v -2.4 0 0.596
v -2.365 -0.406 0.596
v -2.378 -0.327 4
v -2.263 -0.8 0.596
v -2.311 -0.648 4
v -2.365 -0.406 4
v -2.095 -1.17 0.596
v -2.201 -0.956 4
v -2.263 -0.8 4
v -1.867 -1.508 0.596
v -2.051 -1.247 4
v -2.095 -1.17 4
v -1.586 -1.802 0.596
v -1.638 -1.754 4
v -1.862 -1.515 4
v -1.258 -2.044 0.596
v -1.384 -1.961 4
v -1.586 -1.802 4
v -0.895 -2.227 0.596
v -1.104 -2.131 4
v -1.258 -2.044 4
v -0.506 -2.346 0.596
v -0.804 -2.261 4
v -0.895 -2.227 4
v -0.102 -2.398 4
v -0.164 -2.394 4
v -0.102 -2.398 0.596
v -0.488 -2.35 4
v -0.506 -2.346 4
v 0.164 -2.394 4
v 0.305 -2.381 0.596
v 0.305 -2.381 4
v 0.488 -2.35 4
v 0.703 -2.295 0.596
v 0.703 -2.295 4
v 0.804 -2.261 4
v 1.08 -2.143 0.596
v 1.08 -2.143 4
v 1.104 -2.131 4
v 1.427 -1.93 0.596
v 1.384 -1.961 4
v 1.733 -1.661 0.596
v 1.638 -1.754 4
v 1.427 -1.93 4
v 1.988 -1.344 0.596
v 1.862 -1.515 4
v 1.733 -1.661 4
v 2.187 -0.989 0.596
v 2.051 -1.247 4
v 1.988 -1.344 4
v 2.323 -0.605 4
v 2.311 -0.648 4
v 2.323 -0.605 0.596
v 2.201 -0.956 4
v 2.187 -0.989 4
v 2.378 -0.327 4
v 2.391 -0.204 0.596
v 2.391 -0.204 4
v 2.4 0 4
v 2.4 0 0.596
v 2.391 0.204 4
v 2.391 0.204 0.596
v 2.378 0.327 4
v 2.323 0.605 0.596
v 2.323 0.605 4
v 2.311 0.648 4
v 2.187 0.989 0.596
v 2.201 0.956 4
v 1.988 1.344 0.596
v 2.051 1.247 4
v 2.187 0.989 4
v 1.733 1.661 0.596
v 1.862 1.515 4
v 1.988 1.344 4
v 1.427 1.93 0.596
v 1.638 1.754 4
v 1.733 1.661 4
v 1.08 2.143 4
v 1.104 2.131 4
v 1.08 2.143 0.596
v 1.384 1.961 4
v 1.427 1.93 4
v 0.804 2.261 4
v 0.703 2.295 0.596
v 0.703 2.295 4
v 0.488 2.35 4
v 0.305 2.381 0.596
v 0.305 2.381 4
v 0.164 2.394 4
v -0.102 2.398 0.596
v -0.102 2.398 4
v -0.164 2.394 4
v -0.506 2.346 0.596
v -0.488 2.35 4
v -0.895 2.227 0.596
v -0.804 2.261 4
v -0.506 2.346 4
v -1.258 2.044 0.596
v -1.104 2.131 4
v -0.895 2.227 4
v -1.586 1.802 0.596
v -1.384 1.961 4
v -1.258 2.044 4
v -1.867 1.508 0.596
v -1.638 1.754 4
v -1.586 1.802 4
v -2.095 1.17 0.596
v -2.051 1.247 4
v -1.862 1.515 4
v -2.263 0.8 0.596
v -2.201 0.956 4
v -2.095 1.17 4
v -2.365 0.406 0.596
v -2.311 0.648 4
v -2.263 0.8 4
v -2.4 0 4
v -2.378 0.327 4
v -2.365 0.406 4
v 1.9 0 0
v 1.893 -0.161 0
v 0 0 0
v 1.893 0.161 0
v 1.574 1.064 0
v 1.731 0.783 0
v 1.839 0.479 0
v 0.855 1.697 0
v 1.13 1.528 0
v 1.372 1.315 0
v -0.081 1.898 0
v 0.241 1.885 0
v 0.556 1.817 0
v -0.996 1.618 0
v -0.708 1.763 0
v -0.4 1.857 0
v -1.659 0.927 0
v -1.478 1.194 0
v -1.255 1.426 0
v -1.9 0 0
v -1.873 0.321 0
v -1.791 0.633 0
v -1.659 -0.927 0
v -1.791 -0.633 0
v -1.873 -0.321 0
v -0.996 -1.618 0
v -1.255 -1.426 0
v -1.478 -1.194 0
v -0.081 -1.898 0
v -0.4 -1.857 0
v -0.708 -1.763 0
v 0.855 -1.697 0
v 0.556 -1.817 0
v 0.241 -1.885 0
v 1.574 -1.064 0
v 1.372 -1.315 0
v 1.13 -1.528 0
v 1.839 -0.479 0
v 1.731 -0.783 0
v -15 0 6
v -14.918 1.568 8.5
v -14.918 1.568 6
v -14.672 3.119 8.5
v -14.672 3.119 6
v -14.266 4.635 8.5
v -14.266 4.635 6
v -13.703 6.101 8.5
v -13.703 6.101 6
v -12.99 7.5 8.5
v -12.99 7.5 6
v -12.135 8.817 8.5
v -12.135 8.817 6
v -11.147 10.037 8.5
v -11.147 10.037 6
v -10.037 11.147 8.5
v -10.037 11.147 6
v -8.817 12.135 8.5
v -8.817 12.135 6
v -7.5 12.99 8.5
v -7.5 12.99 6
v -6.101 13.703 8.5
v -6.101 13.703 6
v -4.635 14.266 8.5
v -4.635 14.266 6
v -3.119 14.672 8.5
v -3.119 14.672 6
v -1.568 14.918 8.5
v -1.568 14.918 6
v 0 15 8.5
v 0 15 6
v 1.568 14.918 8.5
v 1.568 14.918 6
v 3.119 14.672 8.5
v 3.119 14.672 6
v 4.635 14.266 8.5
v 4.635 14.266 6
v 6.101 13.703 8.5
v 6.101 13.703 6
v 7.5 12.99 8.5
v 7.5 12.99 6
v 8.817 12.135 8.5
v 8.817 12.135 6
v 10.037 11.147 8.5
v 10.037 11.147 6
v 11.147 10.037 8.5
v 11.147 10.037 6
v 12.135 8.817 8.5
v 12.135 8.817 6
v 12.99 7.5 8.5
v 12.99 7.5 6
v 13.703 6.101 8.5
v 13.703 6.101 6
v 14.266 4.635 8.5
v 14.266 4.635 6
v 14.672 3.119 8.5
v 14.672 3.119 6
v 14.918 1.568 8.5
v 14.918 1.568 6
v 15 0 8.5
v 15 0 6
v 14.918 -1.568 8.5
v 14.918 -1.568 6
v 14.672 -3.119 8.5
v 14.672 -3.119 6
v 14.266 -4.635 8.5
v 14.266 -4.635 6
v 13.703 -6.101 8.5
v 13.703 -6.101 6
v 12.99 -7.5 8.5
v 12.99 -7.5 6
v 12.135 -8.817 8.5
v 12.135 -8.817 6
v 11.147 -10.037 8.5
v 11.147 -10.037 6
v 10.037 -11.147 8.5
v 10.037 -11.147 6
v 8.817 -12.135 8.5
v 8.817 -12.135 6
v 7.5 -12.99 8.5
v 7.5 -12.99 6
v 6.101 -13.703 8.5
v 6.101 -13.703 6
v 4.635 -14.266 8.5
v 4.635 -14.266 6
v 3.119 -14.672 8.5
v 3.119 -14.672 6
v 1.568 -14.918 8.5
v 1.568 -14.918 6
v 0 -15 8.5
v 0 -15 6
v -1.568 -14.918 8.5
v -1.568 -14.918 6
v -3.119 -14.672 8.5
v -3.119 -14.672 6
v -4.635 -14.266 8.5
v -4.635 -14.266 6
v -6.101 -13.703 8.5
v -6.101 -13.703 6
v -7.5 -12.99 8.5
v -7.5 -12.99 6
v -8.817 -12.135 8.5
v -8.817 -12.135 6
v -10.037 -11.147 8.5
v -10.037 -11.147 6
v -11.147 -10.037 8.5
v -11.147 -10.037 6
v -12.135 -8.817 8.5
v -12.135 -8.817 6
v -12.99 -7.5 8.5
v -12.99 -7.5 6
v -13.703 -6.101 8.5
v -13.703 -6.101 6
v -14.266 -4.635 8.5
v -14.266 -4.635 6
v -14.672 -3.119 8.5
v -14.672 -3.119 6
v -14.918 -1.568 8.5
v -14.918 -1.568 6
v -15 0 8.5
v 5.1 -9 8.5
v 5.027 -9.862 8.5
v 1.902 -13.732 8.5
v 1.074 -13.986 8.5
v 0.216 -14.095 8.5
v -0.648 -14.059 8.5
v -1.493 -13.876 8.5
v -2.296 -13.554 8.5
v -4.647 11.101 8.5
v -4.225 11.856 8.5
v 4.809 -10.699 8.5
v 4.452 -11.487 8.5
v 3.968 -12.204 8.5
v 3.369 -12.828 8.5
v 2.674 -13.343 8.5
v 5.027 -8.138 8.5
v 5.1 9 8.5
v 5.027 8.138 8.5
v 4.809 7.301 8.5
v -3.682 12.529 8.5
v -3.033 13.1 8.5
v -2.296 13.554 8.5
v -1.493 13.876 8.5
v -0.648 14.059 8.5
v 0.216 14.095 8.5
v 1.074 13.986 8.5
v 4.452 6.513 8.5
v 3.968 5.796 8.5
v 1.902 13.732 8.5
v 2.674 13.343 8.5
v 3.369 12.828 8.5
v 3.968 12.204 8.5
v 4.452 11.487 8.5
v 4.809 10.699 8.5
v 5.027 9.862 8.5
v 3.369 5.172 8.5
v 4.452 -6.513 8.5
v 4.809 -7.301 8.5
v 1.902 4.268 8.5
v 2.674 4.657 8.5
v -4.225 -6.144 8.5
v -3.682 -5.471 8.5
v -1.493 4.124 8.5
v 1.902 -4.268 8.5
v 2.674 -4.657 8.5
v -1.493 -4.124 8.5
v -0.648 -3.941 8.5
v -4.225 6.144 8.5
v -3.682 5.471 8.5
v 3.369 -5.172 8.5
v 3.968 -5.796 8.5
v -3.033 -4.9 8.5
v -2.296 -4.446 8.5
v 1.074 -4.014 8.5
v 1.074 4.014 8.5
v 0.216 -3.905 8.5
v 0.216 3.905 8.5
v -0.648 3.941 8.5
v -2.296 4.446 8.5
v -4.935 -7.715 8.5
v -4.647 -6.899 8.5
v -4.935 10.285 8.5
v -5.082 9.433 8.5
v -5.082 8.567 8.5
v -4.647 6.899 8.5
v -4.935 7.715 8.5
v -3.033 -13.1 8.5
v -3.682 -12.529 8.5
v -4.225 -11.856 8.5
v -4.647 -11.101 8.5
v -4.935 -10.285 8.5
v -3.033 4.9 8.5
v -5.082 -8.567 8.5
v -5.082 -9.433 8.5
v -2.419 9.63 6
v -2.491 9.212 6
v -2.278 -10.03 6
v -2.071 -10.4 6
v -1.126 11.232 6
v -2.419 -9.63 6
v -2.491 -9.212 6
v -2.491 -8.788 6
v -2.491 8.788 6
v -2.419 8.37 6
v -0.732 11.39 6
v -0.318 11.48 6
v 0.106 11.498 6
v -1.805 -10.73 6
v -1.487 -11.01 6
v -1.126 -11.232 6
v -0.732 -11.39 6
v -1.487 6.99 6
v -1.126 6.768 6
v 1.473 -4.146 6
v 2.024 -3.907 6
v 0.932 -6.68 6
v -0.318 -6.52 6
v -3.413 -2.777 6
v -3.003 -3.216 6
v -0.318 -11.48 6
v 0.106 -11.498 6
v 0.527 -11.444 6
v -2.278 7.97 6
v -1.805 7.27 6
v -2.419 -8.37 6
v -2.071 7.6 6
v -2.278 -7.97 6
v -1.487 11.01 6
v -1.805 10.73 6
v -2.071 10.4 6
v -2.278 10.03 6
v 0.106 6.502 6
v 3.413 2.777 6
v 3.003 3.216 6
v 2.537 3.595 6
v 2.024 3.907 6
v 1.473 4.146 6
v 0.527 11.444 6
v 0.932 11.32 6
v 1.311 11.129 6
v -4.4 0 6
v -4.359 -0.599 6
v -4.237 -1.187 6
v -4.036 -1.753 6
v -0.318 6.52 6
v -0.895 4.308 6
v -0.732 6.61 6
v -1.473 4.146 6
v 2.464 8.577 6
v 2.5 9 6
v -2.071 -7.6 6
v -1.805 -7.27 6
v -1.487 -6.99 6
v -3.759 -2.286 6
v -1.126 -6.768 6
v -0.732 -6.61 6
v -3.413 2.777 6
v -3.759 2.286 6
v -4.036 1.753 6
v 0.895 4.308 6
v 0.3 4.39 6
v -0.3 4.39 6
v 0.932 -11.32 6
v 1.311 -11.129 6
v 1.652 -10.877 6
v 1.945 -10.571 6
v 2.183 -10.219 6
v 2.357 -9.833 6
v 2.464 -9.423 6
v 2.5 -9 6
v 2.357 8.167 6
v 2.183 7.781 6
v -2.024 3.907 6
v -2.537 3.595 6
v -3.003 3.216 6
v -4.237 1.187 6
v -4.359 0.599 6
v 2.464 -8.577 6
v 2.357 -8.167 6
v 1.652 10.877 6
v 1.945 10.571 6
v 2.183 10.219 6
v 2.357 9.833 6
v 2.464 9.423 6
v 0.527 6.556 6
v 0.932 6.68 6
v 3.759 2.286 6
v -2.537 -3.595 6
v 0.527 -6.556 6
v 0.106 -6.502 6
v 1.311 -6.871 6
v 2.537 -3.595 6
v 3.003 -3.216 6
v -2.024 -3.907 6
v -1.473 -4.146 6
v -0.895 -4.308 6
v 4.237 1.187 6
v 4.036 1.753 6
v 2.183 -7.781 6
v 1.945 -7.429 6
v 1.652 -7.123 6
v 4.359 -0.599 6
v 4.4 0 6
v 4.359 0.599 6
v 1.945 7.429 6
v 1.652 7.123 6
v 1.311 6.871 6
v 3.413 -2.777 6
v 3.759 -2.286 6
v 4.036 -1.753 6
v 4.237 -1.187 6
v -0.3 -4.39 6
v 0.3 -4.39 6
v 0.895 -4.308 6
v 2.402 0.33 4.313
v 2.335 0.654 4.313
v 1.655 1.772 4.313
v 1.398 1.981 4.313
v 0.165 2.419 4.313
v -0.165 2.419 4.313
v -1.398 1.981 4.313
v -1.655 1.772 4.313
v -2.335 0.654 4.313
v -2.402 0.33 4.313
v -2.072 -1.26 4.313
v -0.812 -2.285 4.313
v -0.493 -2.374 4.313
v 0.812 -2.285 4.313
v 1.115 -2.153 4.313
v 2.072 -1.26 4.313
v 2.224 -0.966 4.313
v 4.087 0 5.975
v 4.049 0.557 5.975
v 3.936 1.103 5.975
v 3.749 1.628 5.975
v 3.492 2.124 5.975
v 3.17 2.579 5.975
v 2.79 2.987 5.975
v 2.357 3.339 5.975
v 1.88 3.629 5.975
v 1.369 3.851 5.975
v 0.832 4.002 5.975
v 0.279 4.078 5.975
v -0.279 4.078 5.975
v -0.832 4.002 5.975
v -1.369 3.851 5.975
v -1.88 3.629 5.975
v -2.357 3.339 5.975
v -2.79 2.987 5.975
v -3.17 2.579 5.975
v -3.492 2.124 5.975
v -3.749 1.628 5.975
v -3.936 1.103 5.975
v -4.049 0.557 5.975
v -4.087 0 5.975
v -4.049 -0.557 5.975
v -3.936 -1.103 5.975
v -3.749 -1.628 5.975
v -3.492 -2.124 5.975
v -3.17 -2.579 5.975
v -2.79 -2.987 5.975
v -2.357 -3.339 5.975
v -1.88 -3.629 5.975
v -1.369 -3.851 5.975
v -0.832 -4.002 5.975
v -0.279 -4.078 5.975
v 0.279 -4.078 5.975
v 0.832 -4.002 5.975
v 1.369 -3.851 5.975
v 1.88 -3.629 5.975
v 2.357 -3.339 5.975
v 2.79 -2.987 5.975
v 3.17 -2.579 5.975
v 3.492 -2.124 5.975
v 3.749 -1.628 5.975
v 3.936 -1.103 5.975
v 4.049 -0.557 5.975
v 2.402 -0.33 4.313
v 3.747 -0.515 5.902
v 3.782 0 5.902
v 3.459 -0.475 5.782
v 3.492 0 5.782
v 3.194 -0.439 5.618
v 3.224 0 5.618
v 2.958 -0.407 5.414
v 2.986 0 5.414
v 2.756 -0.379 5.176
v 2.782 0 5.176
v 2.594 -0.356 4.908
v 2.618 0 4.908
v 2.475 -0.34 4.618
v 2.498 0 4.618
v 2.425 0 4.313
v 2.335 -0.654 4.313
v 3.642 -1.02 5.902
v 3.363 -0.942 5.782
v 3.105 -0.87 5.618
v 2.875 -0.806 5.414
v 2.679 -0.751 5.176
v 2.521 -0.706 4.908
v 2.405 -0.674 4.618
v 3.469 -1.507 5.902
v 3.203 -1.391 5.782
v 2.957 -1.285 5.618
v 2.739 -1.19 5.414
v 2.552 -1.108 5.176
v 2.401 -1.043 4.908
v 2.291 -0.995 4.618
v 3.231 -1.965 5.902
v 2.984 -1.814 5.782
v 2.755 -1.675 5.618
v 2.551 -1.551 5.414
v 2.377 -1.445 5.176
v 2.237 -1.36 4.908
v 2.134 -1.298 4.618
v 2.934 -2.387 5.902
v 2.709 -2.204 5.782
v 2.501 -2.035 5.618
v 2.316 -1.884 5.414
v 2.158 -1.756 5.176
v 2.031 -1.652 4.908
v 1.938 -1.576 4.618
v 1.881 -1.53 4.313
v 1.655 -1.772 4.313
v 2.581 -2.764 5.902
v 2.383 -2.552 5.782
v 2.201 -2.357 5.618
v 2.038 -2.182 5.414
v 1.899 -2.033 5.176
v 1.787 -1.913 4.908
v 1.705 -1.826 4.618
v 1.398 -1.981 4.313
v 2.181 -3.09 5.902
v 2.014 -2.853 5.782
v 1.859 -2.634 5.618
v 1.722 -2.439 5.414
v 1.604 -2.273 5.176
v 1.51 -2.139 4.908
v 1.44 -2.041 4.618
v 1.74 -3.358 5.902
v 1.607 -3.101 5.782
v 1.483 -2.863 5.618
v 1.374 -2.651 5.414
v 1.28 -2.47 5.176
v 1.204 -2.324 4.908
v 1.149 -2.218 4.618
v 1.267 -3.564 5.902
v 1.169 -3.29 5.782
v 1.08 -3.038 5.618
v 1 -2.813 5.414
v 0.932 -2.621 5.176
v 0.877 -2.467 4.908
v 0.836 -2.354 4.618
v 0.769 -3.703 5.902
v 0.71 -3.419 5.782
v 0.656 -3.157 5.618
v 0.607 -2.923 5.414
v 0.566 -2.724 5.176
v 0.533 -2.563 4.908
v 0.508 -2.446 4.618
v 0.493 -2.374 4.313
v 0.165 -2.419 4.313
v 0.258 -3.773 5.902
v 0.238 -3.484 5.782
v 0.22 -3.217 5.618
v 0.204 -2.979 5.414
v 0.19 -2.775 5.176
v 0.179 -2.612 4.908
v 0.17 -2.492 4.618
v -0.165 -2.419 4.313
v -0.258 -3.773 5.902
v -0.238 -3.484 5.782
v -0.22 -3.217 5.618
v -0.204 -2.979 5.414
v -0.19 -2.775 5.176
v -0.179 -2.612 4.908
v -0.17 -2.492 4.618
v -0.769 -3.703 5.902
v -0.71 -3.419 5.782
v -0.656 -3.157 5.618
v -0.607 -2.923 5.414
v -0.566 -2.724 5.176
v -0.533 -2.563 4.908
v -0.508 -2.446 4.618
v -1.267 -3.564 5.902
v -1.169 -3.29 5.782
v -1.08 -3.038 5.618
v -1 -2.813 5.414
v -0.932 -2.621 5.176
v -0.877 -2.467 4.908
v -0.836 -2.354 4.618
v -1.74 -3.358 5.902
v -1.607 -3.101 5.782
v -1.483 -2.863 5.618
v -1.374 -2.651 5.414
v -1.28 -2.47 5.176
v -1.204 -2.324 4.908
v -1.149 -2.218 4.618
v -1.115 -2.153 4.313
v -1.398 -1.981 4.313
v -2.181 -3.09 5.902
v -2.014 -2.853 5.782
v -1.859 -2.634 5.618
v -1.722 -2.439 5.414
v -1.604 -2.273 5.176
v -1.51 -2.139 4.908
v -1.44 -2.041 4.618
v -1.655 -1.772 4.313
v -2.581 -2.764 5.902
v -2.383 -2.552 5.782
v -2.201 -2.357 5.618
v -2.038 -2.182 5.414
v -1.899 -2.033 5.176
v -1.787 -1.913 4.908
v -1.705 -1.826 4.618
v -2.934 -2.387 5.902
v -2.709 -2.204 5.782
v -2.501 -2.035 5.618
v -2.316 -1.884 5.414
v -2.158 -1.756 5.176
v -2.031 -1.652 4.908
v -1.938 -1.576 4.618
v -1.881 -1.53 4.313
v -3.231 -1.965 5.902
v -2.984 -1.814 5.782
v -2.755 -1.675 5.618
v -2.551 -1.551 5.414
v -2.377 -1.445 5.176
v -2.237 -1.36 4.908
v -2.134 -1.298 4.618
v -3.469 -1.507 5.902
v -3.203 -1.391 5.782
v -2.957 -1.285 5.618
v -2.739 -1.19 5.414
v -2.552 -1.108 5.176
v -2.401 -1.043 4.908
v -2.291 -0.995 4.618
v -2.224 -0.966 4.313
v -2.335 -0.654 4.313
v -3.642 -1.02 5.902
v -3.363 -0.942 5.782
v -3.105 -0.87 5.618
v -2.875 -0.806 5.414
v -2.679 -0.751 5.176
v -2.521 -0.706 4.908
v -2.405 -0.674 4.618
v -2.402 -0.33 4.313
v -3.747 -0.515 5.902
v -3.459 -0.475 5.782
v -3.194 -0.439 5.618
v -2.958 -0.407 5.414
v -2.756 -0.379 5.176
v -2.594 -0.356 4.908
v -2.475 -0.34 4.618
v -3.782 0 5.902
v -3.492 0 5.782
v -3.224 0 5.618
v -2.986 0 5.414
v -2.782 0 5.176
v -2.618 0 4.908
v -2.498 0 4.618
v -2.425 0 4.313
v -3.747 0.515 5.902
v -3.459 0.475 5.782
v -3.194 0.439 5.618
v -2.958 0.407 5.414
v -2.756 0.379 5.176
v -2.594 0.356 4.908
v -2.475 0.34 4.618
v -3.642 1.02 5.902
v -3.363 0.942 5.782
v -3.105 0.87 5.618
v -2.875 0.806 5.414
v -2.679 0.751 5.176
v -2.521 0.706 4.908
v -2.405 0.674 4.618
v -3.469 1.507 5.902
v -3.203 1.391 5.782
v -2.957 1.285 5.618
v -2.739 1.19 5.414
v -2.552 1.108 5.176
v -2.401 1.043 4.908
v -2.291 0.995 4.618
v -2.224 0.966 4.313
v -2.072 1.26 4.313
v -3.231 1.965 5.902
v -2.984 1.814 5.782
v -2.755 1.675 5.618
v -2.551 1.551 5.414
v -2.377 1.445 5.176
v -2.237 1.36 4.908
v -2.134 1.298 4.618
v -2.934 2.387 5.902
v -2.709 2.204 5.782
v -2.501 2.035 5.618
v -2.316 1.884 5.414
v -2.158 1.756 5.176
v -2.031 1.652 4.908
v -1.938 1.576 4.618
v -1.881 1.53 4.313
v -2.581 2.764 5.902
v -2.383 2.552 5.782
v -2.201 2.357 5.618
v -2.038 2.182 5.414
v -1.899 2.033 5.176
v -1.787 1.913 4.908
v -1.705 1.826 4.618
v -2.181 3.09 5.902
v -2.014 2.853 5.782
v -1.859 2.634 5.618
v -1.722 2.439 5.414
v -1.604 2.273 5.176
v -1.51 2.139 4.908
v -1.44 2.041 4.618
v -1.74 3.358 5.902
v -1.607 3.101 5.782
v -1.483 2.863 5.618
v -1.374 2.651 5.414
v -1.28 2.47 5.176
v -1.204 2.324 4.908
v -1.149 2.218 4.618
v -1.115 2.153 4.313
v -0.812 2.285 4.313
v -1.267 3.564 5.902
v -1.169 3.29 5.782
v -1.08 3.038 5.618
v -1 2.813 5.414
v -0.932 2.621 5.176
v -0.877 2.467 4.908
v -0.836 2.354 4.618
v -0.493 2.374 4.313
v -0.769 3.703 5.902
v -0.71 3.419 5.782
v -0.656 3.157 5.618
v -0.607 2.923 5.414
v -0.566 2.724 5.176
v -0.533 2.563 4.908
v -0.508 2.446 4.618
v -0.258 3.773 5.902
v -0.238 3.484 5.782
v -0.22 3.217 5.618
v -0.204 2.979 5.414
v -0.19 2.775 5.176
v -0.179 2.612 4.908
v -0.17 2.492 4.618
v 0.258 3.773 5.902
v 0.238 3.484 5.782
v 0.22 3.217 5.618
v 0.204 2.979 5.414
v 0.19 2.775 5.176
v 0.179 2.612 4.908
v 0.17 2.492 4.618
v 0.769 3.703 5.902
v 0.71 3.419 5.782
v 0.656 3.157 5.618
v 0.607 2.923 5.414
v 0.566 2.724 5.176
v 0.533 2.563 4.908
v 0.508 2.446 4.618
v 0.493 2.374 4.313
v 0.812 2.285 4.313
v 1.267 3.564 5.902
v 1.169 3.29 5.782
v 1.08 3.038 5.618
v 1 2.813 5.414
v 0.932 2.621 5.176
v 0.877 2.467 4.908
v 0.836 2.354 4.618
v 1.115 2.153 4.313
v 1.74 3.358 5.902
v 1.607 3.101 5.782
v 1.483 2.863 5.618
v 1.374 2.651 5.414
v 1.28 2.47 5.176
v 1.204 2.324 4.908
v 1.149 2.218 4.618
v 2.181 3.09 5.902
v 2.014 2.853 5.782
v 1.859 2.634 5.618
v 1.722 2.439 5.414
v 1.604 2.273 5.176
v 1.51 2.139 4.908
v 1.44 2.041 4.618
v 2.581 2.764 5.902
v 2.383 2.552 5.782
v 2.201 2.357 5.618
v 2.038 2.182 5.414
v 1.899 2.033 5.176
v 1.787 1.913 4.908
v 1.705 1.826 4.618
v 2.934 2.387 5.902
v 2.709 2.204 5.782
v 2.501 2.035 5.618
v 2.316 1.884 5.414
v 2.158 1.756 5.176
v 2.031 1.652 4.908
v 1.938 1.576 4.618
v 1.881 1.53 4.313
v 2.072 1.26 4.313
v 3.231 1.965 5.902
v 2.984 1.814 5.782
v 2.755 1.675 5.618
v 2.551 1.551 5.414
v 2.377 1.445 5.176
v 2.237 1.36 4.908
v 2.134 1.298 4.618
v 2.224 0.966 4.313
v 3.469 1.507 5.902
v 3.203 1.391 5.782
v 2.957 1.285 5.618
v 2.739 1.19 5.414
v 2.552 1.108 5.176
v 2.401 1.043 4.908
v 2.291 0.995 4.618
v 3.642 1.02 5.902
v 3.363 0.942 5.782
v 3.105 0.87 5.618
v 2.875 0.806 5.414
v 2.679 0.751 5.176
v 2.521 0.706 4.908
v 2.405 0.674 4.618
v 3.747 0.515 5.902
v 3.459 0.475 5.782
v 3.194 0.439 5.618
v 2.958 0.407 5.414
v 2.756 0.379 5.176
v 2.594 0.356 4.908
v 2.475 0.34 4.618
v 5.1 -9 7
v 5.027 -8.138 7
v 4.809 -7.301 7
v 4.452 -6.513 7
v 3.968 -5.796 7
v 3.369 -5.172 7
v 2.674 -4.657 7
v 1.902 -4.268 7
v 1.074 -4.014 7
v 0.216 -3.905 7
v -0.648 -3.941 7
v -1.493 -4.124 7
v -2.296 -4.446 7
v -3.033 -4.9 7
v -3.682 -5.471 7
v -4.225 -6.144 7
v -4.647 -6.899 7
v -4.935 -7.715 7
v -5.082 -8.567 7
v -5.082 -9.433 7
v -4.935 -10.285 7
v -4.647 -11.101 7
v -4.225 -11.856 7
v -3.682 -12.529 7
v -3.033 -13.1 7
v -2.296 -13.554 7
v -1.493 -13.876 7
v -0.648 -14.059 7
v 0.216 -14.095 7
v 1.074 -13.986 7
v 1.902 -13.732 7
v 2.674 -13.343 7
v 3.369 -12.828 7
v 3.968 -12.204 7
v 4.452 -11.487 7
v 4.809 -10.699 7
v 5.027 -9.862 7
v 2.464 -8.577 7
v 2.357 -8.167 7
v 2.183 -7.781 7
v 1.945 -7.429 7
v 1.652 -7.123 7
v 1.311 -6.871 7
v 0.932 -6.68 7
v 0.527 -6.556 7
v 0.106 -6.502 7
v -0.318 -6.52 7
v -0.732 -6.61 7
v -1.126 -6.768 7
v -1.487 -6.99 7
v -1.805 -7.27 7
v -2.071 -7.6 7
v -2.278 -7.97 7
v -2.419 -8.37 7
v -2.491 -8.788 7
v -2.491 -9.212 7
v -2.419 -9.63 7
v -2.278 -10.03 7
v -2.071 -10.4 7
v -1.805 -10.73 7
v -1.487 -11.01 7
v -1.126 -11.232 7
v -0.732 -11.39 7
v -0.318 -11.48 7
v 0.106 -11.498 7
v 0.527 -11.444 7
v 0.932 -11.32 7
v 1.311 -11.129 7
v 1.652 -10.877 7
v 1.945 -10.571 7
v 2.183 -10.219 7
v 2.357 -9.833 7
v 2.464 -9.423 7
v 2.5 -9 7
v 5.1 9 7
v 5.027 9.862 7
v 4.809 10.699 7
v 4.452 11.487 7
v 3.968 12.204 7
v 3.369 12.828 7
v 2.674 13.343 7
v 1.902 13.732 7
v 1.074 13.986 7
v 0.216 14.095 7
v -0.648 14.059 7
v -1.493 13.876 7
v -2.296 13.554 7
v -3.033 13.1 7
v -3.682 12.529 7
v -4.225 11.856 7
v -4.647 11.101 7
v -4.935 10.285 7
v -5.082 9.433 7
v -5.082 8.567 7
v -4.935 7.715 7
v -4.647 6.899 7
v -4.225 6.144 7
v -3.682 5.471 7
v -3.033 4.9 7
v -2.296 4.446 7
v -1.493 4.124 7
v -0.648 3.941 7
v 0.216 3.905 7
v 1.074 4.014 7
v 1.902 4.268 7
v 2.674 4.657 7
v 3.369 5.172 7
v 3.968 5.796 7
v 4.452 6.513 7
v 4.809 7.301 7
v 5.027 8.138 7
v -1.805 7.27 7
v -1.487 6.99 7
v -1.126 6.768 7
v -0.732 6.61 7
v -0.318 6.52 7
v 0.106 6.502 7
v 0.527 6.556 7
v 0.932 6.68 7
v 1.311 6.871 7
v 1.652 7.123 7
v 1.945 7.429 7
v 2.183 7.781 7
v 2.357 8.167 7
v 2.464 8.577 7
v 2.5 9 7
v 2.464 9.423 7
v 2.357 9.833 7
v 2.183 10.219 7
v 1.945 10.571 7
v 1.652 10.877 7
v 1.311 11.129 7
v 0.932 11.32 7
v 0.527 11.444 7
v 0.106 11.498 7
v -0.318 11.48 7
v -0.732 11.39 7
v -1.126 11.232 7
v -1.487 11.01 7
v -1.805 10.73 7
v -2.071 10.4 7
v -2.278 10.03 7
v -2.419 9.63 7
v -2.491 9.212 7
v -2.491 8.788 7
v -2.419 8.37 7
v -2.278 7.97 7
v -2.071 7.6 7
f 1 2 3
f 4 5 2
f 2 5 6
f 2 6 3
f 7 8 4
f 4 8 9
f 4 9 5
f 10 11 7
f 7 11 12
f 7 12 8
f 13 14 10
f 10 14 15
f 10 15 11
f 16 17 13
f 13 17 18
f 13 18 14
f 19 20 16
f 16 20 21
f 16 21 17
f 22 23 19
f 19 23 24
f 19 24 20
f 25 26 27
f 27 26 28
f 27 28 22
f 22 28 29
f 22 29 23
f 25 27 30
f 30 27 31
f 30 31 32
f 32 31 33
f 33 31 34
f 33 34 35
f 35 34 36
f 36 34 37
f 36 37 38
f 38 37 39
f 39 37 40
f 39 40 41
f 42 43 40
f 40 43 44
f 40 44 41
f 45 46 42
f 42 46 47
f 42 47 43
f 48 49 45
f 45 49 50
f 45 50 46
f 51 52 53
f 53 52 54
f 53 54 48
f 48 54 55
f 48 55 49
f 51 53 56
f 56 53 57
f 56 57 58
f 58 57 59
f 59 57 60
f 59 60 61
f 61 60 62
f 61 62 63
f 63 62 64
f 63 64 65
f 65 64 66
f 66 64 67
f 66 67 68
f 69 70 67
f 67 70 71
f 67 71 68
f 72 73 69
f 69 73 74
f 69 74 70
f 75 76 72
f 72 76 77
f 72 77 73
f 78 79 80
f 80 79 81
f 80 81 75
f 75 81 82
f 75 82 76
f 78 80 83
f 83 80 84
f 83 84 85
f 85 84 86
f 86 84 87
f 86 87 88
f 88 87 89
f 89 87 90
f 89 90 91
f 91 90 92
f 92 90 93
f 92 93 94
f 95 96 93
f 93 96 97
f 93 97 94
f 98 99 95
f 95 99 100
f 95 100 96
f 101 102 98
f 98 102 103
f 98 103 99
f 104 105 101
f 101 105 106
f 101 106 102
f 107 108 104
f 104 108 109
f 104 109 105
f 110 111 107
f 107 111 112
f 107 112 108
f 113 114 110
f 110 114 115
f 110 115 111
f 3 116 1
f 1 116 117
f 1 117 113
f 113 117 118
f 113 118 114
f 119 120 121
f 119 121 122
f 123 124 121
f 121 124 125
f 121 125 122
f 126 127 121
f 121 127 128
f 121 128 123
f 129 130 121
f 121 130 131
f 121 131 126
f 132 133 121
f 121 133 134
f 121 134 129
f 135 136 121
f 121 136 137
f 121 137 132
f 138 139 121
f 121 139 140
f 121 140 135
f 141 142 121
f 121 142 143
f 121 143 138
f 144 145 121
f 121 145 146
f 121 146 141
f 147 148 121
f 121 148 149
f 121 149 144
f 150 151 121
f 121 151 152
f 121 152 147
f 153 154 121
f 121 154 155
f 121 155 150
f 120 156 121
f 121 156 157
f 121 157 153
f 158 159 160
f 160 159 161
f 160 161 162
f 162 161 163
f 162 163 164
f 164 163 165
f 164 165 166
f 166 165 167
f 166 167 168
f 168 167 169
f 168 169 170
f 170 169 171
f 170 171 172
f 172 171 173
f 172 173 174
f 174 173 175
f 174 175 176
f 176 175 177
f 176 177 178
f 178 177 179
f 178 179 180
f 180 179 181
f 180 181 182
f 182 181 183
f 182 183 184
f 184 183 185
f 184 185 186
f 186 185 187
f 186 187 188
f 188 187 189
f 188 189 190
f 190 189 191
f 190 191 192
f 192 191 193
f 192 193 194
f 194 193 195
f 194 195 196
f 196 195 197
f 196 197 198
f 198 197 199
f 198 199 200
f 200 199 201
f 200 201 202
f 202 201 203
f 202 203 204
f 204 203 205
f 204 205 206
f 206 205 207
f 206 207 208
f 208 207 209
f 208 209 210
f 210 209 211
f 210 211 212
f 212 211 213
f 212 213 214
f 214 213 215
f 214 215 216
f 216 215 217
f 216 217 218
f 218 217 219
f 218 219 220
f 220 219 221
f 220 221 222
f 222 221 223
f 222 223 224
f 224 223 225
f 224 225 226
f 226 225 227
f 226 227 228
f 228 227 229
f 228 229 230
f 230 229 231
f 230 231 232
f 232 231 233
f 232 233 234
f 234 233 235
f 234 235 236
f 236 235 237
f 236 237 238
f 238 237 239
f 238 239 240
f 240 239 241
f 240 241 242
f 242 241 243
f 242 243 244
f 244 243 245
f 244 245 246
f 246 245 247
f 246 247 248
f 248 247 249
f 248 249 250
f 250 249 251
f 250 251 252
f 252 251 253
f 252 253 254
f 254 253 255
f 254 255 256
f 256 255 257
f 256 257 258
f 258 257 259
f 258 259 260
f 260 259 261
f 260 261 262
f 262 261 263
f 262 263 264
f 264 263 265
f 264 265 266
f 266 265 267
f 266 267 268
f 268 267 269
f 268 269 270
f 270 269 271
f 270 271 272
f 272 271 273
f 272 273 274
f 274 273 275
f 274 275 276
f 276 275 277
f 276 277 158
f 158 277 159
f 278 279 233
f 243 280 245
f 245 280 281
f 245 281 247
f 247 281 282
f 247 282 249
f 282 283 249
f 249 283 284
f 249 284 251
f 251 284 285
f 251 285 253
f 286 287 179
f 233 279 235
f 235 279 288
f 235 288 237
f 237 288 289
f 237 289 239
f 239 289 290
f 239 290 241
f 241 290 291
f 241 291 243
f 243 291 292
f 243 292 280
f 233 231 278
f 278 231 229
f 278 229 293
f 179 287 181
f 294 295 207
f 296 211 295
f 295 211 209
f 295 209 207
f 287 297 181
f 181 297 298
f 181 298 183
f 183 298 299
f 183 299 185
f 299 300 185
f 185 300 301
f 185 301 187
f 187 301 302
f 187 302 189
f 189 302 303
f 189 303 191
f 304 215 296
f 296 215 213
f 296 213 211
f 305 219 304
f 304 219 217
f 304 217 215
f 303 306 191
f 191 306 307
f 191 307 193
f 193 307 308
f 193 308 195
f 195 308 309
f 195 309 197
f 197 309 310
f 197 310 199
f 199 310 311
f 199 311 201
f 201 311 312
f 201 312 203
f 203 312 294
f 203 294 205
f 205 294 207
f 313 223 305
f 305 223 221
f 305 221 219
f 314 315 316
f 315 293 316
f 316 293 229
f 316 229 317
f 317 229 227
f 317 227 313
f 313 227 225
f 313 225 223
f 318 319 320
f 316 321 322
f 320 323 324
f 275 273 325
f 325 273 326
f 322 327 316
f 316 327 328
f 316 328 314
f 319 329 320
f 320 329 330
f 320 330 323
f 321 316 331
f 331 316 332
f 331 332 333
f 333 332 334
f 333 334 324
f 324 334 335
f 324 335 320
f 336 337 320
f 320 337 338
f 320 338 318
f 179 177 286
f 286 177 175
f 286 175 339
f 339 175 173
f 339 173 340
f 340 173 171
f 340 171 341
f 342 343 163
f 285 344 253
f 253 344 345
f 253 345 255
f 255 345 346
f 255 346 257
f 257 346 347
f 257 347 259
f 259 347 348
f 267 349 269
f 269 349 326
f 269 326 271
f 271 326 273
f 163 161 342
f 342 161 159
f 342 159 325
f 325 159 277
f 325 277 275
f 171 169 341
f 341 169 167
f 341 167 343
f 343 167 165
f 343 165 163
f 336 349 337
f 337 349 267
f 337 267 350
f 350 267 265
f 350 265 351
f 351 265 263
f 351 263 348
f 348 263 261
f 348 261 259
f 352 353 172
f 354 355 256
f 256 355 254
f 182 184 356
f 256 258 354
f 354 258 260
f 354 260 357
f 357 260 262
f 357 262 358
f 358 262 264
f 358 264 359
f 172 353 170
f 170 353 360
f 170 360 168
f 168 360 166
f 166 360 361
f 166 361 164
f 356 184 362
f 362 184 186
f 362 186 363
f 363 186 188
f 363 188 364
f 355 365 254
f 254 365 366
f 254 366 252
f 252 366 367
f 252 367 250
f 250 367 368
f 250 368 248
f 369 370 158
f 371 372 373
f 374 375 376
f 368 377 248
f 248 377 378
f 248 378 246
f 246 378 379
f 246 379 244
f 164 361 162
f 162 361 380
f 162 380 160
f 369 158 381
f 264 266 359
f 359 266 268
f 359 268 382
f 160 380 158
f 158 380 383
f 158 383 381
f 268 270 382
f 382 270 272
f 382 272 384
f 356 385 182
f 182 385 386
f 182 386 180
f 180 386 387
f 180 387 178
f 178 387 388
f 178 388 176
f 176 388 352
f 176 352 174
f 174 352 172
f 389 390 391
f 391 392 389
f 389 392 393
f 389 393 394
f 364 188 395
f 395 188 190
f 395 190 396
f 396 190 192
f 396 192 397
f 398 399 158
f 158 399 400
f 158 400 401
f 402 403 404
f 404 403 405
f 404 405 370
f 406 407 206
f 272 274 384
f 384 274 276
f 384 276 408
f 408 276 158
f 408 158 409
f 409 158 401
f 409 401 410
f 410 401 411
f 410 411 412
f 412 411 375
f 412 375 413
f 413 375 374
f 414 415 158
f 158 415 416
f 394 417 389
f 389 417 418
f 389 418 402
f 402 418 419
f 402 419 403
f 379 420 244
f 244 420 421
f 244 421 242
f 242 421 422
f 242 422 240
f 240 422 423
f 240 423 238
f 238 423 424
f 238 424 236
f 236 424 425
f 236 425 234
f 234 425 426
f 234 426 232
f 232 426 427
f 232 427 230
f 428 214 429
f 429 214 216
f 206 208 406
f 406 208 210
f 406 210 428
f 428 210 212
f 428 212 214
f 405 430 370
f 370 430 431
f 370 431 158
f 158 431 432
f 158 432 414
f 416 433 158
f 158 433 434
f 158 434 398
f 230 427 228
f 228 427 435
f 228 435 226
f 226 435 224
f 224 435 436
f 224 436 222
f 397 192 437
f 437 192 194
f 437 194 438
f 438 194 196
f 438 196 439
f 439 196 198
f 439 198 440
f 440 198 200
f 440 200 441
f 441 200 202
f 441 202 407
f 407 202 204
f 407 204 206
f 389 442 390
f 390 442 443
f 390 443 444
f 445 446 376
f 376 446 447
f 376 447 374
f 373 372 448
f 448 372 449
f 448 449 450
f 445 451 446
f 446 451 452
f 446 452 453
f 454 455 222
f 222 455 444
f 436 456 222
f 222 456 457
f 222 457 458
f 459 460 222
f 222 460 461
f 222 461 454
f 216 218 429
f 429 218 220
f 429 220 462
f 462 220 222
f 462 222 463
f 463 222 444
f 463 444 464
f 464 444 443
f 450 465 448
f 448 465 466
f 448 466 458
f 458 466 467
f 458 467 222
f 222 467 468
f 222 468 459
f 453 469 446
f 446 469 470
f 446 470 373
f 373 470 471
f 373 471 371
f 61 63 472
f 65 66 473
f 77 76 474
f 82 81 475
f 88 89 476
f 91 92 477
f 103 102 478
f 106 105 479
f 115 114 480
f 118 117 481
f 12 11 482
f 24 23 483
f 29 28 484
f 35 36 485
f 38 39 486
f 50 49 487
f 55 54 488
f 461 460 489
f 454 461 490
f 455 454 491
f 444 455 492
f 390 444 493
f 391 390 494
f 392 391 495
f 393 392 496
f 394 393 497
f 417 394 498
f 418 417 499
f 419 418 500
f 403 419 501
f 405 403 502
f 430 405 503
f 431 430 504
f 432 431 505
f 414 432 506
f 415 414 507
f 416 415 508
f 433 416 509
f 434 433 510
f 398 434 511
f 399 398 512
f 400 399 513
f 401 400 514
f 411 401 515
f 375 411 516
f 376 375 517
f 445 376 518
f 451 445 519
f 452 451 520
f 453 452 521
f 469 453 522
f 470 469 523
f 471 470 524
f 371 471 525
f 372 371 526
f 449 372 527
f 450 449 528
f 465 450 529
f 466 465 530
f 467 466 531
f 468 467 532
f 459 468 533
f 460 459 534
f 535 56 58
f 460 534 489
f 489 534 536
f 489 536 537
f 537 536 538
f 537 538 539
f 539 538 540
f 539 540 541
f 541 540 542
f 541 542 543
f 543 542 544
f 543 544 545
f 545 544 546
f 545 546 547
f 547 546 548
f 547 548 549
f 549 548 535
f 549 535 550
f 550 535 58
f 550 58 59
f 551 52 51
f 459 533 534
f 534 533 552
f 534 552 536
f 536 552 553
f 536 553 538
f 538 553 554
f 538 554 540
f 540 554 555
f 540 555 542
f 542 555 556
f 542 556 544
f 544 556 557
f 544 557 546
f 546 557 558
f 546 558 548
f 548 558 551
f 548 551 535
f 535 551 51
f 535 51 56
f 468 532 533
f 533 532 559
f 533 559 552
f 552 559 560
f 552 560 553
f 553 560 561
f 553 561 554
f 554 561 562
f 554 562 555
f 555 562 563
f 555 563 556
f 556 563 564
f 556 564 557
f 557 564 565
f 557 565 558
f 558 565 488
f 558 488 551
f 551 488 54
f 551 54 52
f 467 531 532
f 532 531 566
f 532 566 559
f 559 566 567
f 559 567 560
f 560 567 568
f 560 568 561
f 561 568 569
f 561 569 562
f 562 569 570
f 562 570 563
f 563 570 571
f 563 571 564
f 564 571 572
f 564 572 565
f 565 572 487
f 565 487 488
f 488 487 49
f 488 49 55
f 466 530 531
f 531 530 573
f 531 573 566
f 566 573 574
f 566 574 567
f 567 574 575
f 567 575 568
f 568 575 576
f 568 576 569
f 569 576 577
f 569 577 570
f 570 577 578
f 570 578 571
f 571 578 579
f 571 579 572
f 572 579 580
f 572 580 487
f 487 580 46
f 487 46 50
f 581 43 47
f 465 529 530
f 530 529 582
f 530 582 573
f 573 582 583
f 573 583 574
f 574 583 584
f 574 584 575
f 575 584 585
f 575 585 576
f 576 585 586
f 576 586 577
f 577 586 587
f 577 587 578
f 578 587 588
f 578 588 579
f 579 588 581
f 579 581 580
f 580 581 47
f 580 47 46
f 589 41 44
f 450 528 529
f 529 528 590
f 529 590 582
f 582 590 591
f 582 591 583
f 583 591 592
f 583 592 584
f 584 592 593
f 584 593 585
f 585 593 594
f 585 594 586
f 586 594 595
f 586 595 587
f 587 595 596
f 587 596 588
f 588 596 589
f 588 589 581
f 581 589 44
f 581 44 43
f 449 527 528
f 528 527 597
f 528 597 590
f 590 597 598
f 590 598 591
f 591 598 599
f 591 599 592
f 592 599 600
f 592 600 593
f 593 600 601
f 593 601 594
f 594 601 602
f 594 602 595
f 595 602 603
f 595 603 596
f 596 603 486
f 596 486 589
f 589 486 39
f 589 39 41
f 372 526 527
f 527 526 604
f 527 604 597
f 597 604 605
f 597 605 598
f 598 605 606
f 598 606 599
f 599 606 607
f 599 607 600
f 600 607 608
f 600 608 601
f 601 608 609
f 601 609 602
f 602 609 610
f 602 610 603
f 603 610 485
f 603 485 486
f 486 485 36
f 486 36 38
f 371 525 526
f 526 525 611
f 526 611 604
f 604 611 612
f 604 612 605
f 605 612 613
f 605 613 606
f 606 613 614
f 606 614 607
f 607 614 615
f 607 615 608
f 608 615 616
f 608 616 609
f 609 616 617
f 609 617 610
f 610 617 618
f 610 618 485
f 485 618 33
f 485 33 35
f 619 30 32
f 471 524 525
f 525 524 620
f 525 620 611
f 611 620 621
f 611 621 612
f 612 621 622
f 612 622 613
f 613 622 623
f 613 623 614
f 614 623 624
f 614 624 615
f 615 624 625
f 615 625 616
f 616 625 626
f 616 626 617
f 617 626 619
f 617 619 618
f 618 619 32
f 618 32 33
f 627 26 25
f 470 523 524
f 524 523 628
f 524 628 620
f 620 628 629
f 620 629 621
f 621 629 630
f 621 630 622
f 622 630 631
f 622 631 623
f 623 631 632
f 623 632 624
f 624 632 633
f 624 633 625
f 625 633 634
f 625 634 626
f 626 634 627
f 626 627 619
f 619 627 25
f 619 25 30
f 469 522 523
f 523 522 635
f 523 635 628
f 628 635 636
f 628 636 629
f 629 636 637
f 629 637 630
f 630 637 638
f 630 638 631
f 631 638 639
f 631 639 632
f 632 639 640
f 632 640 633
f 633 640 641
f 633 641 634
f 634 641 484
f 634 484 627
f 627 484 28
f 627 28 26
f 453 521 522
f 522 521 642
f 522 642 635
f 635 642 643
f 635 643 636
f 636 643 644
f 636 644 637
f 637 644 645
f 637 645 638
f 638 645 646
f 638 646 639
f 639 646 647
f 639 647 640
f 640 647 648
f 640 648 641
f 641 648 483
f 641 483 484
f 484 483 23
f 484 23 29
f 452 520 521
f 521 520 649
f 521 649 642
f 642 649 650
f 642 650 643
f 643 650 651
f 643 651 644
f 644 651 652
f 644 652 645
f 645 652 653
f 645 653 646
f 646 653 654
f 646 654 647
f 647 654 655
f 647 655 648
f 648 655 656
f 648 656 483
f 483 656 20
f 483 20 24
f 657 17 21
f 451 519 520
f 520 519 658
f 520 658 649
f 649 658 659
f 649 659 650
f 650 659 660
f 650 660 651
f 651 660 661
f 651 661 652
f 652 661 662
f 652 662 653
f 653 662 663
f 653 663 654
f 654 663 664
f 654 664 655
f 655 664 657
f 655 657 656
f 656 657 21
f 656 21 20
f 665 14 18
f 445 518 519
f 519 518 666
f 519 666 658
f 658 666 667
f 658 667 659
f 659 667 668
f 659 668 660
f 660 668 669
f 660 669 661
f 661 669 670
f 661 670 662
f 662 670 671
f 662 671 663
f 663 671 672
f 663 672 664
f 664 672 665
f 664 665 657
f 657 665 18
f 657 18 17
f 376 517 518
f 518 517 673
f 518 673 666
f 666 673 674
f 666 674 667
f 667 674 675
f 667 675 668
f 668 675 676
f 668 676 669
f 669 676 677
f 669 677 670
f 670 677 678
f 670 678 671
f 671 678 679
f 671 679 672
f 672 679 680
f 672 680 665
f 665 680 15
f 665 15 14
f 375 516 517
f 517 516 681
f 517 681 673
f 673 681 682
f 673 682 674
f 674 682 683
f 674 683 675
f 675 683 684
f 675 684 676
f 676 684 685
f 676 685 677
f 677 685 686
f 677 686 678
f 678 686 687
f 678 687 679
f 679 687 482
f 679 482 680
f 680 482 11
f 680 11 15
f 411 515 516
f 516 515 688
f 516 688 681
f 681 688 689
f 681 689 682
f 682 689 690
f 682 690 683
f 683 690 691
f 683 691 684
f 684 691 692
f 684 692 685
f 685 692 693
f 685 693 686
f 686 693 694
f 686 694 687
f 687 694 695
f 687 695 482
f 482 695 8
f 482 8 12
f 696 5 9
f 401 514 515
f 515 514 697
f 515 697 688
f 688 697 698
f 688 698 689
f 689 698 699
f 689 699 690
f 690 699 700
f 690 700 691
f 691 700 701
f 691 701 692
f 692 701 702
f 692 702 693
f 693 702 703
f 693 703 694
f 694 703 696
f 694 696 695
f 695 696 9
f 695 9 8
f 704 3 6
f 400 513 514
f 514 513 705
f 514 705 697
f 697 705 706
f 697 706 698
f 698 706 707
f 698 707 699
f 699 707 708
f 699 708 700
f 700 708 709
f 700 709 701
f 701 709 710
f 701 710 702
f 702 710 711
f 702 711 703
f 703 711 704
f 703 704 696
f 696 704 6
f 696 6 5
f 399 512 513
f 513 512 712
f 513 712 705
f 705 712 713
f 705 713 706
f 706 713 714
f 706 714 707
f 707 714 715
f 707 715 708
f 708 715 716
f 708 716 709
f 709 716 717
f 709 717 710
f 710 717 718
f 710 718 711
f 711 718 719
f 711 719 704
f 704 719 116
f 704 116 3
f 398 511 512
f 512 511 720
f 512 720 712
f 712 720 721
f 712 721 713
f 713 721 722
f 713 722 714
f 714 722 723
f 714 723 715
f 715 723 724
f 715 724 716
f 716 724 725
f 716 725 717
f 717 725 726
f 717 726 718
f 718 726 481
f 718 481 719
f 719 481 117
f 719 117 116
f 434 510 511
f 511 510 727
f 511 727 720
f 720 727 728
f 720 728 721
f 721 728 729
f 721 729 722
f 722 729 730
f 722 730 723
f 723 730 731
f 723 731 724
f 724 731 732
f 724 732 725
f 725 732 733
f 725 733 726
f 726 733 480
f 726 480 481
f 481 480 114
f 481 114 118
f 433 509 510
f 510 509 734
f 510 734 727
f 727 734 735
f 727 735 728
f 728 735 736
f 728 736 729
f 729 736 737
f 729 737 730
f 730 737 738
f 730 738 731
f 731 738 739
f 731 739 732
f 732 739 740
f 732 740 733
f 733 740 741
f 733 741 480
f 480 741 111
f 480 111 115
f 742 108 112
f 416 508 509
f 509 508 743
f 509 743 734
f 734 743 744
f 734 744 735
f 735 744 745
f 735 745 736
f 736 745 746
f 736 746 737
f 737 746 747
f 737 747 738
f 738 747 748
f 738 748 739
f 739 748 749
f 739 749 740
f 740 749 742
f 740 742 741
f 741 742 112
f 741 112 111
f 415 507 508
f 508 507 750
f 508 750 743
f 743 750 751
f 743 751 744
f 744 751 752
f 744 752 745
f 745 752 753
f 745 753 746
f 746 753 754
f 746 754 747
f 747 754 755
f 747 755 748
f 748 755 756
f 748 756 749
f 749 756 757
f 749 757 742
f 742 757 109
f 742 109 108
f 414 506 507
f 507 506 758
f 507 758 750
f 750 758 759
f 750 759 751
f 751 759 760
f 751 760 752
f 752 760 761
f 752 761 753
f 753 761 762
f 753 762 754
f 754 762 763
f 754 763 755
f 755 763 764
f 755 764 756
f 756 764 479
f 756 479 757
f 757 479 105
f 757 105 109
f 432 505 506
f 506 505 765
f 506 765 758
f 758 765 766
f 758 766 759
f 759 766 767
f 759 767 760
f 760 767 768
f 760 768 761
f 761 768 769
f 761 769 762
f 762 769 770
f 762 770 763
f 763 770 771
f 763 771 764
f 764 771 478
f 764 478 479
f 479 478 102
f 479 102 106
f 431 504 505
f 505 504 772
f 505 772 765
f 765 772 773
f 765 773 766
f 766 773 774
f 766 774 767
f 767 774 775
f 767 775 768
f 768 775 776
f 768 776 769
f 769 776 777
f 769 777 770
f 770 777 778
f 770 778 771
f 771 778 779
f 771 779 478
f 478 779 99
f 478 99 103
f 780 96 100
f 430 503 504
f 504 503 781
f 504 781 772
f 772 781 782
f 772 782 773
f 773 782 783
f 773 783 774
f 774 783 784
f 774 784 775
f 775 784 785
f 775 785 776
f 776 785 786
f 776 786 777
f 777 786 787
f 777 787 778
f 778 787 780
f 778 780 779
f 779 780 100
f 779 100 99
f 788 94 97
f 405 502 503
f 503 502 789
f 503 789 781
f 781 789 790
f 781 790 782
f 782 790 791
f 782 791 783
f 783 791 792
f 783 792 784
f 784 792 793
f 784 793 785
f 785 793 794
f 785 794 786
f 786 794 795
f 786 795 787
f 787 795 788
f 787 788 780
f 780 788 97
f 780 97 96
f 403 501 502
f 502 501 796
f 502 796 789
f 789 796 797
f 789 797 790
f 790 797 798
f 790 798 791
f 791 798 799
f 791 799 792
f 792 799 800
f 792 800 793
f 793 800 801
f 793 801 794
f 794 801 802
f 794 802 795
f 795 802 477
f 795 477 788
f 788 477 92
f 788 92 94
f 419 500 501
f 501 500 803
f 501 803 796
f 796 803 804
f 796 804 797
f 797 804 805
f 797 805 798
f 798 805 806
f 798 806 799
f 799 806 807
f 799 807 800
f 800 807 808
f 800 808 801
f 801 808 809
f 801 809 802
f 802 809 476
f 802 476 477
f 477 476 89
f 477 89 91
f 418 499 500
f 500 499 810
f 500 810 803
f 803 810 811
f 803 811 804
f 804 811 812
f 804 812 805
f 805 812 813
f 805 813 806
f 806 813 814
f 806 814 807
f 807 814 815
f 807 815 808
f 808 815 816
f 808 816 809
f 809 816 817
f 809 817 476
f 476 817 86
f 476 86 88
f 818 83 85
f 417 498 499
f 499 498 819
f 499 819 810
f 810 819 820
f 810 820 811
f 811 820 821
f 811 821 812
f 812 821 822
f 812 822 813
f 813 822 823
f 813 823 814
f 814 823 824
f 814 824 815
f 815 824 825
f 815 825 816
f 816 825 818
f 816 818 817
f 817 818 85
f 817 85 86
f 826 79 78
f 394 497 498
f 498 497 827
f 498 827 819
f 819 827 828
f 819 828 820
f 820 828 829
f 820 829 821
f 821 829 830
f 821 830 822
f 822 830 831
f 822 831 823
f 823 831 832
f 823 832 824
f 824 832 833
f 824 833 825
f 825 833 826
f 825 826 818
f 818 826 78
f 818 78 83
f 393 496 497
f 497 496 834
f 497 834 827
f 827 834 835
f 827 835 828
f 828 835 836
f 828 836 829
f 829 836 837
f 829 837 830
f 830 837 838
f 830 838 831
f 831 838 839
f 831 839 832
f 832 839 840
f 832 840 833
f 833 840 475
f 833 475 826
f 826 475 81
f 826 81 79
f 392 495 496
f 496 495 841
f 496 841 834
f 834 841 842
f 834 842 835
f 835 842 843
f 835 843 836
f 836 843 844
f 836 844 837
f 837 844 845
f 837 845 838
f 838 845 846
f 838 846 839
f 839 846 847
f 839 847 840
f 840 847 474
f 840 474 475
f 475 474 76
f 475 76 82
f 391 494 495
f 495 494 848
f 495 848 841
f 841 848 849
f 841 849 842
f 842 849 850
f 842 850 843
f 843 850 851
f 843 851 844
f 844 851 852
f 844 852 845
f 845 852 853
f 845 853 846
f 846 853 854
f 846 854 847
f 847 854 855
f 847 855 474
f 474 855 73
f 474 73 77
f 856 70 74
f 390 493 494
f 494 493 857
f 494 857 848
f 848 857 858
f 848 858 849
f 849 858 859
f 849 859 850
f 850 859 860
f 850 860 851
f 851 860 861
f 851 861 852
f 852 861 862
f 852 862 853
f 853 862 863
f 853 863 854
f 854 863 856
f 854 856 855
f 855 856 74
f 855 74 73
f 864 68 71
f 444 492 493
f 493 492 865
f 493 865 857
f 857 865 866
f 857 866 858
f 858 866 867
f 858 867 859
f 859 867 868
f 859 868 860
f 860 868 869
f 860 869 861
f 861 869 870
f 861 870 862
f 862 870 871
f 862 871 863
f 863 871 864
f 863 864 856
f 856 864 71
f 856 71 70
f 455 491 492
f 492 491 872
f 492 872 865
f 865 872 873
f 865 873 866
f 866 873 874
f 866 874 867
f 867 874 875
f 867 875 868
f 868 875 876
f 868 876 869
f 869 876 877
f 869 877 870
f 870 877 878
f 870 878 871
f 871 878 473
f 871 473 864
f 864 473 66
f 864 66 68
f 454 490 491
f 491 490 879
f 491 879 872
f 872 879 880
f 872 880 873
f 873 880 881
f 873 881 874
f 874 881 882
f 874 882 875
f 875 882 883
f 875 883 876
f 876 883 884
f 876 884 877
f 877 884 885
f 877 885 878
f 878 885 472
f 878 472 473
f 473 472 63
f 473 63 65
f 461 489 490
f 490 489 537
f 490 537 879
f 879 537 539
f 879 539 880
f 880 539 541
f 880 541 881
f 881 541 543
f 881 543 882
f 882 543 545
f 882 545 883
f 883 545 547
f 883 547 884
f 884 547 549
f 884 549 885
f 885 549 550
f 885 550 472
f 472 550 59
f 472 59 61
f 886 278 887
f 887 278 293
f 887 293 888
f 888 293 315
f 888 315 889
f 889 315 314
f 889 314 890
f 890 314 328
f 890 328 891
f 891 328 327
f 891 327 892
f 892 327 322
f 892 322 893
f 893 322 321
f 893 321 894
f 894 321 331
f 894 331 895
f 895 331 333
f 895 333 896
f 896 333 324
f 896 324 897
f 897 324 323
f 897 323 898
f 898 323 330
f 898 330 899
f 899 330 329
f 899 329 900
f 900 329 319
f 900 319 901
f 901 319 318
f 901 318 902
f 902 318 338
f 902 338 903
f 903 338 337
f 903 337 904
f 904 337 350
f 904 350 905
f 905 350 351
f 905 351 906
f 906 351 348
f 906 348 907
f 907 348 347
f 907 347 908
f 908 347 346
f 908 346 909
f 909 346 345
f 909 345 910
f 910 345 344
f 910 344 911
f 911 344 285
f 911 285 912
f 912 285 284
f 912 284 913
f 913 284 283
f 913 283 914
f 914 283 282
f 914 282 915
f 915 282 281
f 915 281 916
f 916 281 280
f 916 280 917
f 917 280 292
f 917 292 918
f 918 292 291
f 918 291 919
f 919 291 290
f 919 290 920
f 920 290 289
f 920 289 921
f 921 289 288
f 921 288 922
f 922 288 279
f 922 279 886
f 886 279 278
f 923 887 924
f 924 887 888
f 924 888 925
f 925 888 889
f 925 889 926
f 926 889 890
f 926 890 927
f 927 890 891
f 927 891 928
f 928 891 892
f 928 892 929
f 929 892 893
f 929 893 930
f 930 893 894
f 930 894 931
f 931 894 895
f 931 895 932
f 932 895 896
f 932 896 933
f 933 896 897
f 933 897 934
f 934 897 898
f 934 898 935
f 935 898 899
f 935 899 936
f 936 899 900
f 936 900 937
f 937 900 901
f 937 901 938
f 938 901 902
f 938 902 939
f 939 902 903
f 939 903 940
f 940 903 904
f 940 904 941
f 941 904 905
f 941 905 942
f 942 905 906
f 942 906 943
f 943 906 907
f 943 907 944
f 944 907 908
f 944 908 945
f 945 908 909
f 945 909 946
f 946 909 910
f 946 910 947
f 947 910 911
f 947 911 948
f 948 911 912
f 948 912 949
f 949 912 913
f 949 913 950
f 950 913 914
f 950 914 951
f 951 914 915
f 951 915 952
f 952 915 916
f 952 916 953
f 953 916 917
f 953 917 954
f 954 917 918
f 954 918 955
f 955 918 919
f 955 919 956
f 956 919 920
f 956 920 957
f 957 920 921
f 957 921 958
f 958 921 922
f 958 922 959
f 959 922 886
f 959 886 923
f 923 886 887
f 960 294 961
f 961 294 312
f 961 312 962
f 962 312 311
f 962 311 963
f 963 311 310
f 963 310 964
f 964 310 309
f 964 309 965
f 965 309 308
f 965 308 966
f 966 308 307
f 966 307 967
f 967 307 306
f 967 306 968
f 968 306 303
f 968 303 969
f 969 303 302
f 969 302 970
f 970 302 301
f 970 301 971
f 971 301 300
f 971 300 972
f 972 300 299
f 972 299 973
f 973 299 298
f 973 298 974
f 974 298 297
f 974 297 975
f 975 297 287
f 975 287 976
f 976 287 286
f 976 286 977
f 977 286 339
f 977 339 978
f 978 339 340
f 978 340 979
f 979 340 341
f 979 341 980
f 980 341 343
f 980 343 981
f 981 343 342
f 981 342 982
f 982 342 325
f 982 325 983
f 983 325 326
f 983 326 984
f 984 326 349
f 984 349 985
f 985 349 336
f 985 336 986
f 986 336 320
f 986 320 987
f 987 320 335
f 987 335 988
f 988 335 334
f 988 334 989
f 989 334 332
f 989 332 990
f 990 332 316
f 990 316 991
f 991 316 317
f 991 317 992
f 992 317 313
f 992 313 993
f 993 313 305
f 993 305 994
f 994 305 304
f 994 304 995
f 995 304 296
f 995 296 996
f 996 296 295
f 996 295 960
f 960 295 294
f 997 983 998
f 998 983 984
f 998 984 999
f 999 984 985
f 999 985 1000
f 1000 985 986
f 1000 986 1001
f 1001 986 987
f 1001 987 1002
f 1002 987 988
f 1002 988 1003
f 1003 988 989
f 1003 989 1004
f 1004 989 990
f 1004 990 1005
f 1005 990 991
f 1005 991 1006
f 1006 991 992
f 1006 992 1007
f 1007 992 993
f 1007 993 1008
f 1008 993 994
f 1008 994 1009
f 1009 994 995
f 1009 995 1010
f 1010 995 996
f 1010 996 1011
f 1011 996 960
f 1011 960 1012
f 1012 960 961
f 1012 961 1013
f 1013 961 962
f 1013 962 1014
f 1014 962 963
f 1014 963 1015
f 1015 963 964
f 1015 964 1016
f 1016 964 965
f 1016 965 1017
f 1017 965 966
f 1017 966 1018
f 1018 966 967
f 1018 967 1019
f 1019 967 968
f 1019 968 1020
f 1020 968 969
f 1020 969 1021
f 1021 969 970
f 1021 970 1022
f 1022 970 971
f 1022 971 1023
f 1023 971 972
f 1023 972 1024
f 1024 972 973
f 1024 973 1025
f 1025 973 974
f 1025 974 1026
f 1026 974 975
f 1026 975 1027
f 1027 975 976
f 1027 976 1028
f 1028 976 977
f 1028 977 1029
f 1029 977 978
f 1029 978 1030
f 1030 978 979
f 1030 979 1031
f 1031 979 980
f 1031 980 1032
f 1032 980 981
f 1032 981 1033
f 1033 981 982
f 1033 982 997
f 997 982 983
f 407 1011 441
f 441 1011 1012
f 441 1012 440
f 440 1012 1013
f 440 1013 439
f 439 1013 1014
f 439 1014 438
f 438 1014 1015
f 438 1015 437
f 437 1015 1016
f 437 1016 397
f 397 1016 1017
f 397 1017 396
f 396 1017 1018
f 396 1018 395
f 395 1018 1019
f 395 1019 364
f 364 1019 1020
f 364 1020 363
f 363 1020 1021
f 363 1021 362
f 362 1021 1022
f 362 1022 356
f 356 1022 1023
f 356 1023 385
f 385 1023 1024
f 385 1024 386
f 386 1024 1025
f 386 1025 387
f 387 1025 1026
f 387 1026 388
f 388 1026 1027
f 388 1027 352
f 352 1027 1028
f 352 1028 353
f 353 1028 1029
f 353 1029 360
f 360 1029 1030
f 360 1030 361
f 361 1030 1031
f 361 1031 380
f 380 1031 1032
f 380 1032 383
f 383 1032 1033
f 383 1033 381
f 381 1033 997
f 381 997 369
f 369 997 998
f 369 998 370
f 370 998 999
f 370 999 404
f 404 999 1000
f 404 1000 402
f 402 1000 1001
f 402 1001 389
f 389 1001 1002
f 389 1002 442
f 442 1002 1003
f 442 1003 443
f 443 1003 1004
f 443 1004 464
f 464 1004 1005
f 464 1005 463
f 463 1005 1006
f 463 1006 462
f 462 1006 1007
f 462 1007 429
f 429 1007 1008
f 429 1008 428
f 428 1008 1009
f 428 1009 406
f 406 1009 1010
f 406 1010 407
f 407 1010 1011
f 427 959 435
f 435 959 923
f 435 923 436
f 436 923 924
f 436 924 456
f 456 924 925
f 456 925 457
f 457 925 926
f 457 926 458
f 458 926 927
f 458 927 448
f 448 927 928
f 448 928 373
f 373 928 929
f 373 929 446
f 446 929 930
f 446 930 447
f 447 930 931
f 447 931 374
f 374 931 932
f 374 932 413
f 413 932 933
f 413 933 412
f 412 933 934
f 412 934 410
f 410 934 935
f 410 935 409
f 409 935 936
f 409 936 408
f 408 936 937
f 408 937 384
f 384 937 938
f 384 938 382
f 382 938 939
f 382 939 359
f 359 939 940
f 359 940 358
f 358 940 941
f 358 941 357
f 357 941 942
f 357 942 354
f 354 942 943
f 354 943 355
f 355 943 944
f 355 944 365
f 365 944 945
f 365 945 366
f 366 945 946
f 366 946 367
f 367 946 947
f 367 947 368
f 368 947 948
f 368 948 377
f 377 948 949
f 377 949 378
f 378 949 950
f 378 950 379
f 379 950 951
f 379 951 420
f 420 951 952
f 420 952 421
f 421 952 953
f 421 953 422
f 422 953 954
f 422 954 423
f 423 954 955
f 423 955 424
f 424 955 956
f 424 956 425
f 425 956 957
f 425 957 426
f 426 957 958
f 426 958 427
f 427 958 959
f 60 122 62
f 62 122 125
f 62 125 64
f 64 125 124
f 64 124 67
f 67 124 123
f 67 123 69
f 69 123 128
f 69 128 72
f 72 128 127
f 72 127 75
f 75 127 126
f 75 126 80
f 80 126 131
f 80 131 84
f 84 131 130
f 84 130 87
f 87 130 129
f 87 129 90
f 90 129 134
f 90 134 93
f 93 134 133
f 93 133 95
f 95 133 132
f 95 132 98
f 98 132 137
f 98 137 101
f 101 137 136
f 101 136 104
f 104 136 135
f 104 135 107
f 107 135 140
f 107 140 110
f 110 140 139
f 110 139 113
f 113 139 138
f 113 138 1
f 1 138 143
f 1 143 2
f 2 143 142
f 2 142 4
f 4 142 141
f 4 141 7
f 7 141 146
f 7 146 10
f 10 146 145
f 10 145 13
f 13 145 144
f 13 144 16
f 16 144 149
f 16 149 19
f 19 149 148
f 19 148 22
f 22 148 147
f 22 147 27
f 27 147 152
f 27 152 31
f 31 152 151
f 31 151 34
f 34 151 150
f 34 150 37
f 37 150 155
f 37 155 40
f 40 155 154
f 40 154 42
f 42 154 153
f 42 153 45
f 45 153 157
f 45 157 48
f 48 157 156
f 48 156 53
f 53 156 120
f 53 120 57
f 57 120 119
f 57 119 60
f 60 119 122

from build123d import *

# Parameters (mm, degrees)
SKETCH2_R           = 2.4
BOSS_EXTRUDE1_DEPTH = 6
SKETCH3_R           = 15
BOSS_EXTRUDE2_DEPTH = 2.5
FILLET1_R           = 2
CUT_EXTRUDE1_DEPTH  = 1.5
SKETCH5_R           = 2.5
CUT_EXTRUDE2_DEPTH  = 23.338307904
CHAMFER1_SIZE       = 0.5
CHAMFER1_SIZE2      = 0.595876796


with BuildPart() as part:
    # Sketch2 → Boss-Extrude1 (new body)
    with BuildSketch(Plane.XY):
        Circle(SKETCH2_R)
    extrude(amount=BOSS_EXTRUDE1_DEPTH)

    # Sketch3 → Boss-Extrude2 (add)
    with BuildSketch(Plane.XY.offset(6)):
        Circle(SKETCH3_R)
    extrude(amount=BOSS_EXTRUDE2_DEPTH)

    # Fillet1
    fillet1_edges = [part.edges().sort_by_distance(p)[0] for p in [
        (-2.4, 0, 6),
    ]]
    fillet(fillet1_edges, radius=FILLET1_R)

    # Sketch4 → Cut-Extrude1 (cut)
    with BuildSketch(Plane.XY.offset(8.5)):
        with BuildLine():
            ThreePointArc((0, 14.1), (-5.1, 9), (0, 3.9))
            Line((0, 3.9), (0, 14.1))
        make_face()
        with BuildLine():
            Line((0, 14.1), (0, 3.9))
            ThreePointArc((0, 3.9), (3.606244584, 5.393755416), (5.1, 9))
            ThreePointArc((5.1, 9), (3.606244584, 12.606244584), (0, 14.1))
        make_face()
        with BuildLine():
            ThreePointArc((0, -3.9), (-5.1, -9), (0, -14.1))
            Line((0, -14.1), (0, -3.9))
        make_face()
        with BuildLine():
            Line((0, -3.9), (0, -14.1))
            ThreePointArc((0, -14.1), (3.606244584, -12.606244584), (5.1, -9))
            ThreePointArc((5.1, -9), (3.606244584, -5.393755416), (0, -3.9))
        make_face()
    extrude(amount=-CUT_EXTRUDE1_DEPTH, mode=Mode.SUBTRACT)

    # Sketch5 → Cut-Extrude2 (cut, through all)
    with BuildSketch(Plane.XY.offset(7)):
        with Locations((0, -9)):
            Circle(SKETCH5_R)
        with Locations((0, 9)):
            Circle(SKETCH5_R)
    extrude(amount=-CUT_EXTRUDE2_DEPTH, mode=Mode.SUBTRACT)

    # Chamfer1
    chamfer1_edges = [part.edges().sort_by_distance(p)[0] for p in [
        (-2.4, 0, 0),
    ]]
    chamfer1_side = [part.faces().sort_by_distance(p)[0] for p in [
        (0, 0, 0),
    ]]
    chamfer(chamfer1_edges, length=CHAMFER1_SIZE, length2=CHAMFER1_SIZE2, reference=chamfer1_side[0])


solid = part.part
